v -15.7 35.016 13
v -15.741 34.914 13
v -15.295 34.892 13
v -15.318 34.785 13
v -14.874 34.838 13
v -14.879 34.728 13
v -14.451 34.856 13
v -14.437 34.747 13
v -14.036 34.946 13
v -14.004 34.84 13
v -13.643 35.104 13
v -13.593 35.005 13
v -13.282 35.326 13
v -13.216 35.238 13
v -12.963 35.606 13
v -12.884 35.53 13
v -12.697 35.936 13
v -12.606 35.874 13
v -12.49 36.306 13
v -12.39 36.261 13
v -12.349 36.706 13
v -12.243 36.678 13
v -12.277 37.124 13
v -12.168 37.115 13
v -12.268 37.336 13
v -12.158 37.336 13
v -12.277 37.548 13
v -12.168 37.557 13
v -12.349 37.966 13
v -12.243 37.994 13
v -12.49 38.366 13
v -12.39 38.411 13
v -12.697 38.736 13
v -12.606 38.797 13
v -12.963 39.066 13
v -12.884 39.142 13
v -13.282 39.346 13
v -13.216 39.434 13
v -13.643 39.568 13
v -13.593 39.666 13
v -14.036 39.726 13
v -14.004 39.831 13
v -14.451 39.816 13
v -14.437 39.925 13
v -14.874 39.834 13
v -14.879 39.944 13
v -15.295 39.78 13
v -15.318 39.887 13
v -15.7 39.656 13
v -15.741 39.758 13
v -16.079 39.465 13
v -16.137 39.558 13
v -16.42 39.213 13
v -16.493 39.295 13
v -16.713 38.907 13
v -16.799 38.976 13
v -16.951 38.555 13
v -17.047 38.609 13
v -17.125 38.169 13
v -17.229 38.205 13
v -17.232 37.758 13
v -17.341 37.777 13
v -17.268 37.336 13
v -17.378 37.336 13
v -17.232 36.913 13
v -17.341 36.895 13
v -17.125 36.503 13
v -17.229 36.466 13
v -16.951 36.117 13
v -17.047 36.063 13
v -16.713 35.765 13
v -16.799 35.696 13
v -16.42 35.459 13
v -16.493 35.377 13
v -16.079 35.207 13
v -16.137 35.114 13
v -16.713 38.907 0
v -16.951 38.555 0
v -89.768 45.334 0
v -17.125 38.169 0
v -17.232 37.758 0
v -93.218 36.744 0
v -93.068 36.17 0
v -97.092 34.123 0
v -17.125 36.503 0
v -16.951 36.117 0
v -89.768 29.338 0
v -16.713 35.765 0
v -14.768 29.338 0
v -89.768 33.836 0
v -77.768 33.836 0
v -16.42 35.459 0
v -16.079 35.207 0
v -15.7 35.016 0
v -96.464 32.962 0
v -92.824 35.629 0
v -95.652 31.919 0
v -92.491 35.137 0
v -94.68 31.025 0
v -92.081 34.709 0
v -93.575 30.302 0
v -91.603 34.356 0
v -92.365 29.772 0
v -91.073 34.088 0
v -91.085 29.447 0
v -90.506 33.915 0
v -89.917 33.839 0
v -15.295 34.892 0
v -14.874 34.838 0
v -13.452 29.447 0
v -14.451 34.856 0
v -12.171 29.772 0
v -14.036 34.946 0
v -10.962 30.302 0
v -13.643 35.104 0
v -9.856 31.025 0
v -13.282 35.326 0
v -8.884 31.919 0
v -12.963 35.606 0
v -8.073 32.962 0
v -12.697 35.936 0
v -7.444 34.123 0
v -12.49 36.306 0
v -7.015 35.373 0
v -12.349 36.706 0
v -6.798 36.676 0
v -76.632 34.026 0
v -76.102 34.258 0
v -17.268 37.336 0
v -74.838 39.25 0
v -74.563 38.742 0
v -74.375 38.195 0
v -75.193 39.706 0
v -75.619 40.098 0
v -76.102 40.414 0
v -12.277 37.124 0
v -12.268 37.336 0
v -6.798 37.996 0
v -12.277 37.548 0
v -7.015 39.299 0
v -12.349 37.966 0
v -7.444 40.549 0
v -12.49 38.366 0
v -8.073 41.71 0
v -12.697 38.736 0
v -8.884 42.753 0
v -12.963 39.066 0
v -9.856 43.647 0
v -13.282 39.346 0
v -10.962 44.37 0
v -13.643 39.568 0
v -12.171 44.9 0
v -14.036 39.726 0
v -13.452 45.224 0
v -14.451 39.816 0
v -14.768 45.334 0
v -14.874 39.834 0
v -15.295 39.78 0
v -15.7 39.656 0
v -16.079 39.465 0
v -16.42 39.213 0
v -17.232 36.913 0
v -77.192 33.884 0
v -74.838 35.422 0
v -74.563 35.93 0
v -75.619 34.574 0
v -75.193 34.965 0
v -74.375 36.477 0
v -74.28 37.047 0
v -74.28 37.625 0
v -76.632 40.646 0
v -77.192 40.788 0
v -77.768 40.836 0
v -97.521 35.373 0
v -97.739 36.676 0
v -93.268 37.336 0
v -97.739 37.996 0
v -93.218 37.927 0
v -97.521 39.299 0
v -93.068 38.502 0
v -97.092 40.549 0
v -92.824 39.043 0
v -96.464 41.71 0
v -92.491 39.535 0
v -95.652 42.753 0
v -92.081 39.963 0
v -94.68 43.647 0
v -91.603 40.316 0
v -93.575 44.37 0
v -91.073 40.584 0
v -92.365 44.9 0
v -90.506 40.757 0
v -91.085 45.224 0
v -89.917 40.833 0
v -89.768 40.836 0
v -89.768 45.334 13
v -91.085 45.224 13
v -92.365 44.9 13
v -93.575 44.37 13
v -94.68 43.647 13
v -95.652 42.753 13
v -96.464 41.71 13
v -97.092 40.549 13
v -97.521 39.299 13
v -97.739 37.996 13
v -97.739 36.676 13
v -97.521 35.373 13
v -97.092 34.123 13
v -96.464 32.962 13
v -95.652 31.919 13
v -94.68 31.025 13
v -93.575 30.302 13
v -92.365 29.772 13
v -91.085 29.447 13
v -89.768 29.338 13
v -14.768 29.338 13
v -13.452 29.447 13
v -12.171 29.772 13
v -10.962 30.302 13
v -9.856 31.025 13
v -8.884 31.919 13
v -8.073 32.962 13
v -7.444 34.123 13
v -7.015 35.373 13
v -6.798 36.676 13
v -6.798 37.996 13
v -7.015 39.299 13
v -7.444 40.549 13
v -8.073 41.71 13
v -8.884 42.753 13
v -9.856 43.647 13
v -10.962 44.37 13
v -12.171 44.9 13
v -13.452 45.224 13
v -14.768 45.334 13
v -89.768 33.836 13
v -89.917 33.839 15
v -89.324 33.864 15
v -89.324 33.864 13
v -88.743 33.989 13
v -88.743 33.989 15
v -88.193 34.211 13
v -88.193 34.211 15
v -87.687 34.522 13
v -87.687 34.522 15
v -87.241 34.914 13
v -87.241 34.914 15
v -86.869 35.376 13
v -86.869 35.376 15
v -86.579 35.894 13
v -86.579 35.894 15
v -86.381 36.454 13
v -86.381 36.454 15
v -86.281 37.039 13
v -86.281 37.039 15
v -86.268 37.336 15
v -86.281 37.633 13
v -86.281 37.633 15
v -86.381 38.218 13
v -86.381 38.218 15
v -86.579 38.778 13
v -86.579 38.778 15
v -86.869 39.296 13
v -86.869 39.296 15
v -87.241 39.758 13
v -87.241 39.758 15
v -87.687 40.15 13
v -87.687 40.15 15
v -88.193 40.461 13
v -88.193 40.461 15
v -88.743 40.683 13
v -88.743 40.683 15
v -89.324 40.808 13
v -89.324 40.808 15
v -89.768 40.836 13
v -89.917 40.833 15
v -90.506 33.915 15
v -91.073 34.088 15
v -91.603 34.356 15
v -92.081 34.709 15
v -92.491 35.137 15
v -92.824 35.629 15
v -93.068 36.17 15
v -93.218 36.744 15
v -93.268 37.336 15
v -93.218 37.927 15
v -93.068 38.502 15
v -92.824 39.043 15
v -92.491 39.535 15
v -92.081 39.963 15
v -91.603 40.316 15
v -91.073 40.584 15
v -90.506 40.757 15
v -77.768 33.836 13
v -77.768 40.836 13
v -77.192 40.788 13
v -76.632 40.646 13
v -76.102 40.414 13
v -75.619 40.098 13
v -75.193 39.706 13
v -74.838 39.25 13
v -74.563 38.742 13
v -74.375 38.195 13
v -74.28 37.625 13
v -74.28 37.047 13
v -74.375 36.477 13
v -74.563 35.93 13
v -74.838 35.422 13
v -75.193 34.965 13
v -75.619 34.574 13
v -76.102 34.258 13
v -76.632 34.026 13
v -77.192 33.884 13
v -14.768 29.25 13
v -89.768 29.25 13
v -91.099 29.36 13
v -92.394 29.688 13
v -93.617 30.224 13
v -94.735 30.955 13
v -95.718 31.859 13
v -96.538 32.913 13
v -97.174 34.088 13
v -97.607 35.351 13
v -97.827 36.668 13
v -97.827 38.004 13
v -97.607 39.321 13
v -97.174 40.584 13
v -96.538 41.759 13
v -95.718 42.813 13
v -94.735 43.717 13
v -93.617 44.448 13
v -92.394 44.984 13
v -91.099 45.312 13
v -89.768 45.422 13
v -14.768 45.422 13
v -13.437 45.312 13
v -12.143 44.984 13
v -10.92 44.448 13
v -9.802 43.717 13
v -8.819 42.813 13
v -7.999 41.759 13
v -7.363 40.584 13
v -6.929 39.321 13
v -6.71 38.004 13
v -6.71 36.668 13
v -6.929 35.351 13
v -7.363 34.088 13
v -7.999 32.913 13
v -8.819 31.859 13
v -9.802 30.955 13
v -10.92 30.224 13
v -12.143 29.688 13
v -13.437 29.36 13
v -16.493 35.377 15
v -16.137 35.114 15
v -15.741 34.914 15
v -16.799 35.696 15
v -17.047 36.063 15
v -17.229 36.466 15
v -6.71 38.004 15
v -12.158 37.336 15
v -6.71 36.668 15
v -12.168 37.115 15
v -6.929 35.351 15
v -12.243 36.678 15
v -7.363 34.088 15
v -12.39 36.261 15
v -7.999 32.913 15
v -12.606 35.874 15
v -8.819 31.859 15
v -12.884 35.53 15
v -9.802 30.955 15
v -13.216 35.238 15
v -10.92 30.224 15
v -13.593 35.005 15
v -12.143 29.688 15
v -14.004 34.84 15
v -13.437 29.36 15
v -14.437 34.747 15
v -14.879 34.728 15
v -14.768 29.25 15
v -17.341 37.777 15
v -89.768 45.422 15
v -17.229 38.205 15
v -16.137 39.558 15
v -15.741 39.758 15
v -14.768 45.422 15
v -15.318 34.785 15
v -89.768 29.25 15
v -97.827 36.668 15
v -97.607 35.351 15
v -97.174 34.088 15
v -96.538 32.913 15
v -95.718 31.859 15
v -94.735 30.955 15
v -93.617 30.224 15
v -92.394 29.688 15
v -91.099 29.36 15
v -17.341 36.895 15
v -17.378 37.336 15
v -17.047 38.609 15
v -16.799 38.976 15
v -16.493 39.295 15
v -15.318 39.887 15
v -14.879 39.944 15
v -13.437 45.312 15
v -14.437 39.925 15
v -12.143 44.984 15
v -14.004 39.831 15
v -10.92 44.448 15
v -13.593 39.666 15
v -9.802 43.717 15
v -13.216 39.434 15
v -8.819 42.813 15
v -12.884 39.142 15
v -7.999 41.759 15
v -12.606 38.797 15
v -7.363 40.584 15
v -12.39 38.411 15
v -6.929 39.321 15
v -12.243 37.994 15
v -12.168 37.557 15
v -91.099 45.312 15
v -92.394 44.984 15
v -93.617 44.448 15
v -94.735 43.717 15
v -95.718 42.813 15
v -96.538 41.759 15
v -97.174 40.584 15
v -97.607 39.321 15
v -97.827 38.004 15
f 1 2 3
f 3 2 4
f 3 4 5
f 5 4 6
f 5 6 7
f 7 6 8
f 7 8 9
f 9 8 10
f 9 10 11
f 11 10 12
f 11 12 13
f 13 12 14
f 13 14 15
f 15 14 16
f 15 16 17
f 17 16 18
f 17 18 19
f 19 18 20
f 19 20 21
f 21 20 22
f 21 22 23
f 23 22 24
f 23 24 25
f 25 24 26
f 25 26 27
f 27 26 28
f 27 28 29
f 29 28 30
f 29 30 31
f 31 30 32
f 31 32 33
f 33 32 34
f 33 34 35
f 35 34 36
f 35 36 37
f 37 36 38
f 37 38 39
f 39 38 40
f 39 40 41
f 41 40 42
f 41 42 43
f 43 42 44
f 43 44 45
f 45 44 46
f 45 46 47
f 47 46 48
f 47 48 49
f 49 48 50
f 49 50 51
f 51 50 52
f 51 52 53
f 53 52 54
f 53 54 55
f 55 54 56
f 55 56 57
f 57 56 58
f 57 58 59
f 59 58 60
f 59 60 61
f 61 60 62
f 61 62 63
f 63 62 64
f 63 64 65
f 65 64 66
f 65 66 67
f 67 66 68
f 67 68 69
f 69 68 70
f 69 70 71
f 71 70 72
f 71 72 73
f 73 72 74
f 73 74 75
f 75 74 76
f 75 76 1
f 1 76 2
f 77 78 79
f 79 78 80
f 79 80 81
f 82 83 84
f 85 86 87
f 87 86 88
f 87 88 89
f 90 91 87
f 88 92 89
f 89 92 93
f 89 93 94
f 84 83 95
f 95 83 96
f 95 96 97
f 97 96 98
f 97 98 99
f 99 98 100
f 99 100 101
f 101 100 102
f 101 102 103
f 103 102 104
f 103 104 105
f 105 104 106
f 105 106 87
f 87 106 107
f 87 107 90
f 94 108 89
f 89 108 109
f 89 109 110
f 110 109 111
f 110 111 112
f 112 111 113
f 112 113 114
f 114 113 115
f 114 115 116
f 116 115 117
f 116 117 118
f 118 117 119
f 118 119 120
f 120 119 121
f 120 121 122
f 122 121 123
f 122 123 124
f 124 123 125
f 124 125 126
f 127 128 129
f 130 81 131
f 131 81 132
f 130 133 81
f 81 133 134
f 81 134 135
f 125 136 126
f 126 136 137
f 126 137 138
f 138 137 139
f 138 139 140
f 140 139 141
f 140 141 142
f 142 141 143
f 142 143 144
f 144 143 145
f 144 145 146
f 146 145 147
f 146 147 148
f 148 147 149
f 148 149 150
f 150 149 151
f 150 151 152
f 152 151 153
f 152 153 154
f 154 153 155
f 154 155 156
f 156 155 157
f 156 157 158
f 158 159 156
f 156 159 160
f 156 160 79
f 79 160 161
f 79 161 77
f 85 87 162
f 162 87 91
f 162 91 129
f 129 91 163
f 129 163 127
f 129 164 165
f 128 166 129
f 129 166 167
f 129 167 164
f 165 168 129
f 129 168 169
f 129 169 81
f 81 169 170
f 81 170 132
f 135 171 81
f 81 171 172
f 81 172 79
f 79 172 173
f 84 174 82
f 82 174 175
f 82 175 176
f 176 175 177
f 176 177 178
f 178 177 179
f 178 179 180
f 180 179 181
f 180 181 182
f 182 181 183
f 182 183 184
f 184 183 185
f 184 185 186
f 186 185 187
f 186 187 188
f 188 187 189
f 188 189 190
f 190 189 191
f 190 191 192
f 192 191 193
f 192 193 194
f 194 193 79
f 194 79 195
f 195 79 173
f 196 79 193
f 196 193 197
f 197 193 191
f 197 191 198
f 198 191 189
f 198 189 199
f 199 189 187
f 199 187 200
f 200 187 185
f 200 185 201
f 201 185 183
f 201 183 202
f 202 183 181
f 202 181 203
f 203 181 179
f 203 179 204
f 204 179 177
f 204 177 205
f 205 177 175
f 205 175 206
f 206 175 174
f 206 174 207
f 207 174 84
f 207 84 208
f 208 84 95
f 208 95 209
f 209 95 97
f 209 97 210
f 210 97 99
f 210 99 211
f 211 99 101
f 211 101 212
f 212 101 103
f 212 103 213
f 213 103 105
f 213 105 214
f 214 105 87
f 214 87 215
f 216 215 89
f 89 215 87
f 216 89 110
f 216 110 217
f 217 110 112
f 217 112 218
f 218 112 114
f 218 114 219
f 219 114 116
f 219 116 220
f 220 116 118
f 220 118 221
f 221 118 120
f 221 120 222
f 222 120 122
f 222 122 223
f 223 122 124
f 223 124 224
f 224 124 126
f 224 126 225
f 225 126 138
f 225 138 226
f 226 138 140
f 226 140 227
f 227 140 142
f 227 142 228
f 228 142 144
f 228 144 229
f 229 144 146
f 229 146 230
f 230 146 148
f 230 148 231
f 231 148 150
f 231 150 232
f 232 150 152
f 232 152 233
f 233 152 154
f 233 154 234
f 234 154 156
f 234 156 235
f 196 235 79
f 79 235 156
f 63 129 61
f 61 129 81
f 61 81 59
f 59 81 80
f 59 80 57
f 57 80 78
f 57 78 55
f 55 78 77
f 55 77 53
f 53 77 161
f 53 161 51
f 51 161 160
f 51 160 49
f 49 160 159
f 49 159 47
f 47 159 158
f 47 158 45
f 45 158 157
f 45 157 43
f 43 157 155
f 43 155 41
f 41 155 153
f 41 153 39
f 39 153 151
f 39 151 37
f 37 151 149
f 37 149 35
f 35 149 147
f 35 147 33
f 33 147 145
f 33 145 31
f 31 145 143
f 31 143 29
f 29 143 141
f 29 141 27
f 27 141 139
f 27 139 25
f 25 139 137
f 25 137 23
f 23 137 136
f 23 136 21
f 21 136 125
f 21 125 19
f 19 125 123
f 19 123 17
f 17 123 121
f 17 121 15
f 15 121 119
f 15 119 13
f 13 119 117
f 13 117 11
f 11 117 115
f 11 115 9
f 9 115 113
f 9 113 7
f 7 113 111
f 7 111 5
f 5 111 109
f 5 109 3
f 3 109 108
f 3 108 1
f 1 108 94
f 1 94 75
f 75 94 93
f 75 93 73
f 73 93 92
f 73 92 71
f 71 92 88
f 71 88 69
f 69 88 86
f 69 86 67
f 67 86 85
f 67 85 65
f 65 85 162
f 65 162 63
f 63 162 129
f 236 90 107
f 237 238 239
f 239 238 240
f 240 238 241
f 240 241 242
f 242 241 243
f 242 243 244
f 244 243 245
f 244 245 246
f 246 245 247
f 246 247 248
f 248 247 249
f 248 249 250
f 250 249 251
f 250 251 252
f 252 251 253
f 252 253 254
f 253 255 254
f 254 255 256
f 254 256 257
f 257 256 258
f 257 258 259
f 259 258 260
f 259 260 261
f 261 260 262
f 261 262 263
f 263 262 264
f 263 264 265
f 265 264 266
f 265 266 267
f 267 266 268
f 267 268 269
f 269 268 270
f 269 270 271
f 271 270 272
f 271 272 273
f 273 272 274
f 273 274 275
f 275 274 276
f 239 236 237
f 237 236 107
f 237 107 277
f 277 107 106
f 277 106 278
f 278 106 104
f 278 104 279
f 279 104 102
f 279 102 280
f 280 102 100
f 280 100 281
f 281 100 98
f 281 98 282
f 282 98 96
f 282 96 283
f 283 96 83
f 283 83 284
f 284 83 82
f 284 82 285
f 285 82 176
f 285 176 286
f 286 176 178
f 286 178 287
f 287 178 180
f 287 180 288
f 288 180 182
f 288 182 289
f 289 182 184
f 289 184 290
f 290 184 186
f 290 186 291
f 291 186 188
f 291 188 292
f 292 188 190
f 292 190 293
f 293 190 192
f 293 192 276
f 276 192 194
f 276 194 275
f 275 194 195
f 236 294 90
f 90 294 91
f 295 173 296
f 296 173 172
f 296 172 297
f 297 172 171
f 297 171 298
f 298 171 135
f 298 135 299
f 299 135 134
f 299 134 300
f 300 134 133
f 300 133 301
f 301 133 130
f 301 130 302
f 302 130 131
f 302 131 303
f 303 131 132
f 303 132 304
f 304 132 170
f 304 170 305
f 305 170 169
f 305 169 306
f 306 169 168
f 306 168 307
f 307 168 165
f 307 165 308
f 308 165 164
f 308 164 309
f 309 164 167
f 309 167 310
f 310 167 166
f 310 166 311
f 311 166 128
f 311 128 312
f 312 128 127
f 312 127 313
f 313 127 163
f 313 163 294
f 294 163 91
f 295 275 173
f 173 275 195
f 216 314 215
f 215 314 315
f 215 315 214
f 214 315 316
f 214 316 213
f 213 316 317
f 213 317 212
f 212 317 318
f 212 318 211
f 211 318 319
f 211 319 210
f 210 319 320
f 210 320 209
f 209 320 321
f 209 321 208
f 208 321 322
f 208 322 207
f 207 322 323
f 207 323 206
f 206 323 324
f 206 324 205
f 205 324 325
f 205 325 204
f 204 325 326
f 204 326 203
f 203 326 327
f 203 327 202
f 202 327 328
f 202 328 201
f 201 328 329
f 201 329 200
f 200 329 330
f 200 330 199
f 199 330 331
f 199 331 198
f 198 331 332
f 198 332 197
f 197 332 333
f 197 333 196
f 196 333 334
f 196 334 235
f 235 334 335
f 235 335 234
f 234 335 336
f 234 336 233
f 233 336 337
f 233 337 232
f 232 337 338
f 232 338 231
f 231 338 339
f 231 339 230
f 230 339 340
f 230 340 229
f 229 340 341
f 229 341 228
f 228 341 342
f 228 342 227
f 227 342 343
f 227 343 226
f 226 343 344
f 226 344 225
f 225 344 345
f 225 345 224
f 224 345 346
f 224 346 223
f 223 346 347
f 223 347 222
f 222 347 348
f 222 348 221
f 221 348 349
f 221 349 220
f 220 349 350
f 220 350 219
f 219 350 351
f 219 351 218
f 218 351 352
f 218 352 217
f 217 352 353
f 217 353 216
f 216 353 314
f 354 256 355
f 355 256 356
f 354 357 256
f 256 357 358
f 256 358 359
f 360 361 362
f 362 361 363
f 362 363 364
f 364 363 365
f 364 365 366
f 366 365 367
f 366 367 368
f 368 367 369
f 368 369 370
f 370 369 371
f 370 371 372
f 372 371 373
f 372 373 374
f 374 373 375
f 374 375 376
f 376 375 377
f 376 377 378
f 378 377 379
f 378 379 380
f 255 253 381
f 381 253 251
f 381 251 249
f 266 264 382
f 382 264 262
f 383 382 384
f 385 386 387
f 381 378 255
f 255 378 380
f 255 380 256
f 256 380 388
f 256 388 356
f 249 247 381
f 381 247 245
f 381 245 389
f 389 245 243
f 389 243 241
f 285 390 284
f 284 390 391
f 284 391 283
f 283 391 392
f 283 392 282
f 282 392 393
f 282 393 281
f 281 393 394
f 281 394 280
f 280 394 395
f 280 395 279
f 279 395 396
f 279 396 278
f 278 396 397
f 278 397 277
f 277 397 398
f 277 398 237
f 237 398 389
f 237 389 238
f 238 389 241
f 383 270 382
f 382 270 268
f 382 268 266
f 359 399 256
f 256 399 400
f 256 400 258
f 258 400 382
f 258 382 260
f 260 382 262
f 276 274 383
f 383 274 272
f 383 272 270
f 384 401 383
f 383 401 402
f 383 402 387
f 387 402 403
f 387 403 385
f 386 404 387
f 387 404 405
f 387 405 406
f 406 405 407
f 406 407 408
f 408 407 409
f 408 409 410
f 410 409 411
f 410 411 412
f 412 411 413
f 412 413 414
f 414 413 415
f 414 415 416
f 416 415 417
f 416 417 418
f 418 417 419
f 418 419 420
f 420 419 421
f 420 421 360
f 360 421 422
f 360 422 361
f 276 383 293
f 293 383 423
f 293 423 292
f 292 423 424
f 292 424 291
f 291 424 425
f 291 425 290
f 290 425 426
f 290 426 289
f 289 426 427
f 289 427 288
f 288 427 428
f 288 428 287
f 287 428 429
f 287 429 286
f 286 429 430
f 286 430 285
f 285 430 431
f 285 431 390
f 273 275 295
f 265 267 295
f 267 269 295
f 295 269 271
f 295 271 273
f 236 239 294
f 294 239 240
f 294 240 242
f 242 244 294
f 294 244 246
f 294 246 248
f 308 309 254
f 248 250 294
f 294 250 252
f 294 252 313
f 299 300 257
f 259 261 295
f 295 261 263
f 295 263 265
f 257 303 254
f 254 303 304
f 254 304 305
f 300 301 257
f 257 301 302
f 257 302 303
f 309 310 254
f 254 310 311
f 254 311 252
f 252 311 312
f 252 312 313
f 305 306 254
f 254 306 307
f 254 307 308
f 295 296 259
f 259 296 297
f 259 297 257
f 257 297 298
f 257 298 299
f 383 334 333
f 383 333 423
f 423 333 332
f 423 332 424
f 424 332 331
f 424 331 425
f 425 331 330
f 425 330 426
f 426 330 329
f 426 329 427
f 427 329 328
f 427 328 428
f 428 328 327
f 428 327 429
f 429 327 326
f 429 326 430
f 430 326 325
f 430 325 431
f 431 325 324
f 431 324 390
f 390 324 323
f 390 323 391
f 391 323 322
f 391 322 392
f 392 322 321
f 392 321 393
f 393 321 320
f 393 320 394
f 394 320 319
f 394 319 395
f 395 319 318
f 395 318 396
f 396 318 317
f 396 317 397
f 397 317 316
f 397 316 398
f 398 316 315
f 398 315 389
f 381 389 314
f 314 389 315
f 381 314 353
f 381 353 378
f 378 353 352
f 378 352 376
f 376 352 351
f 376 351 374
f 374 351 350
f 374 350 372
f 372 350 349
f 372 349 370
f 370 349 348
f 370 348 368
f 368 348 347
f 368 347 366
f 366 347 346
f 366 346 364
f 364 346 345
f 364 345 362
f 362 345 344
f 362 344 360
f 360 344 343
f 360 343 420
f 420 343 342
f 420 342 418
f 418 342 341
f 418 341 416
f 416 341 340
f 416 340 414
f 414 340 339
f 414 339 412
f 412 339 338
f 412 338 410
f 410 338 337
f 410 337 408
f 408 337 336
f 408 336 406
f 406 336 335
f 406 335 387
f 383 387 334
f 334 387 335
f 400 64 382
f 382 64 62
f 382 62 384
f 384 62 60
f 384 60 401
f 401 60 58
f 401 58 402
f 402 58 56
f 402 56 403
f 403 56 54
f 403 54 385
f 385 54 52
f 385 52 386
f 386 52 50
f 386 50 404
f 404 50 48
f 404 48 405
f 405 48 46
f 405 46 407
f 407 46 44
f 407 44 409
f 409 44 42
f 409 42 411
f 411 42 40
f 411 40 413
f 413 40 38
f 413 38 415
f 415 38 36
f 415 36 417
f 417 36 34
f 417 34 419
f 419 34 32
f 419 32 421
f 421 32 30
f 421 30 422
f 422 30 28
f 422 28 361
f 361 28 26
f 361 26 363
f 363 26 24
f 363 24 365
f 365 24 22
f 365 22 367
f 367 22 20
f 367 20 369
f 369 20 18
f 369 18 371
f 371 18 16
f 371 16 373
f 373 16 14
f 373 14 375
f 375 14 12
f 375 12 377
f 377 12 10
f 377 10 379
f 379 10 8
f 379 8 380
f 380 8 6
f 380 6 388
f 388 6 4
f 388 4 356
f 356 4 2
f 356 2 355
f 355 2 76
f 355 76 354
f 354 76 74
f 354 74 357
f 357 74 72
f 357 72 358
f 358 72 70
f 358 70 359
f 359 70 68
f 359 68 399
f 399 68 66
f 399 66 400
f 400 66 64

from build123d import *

# Parameters (mm, degrees)
SKETCH1_R           = 2.5
BOSS_EXTRUDE1_DEPTH = 13
SKETCH2_R           = 2.609917525
SKETCH2_R_2         = 3.5
BOSS_EXTRUDE2_DEPTH = 2


with BuildPart() as part:
    # Sketch1 → Boss-Extrude1 (new body)
    with BuildSketch(Plane.XY):
        with BuildLine():
            Line((-89.768287337, 45.333507938), (-14.768287337, 45.333507938))
            ThreePointArc((-14.768287337, 45.333507938), (-6.770739373, 37.335959975), (-14.768287337, 29.338412011))
            Line((-14.768287337, 29.338412011), (-89.768287337, 29.338412011))
            ThreePointArc((-89.768287337, 29.338412011), (-97.765835301, 37.335959975), (-89.768287337, 45.333507938))
        make_face()
        with Locations((-14.768287337, 37.335959975)):
            Circle(SKETCH1_R, mode=Mode.SUBTRACT)
        with BuildLine():
            Line((-89.768287337, 40.835959975), (-77.768287337, 40.835959975))
            ThreePointArc((-77.768287337, 40.835959975), (-74.268287337, 37.335959975), (-77.768287337, 33.835959975))
            Line((-77.768287337, 33.835959975), (-89.768287337, 33.835959975))
            ThreePointArc((-89.768287337, 33.835959975), (-93.268287337, 37.335959975), (-89.768287337, 40.835959975))
        make_face(mode=Mode.SUBTRACT)
    extrude(amount=BOSS_EXTRUDE1_DEPTH)

    # Sketch2 → Boss-Extrude2 (add)
    with BuildSketch(Plane.XY.offset(13)):
        with BuildLine():
            Line((-89.768287337, 45.422284511), (-14.768287337, 45.422284511))
            ThreePointArc((-14.768287337, 45.422284511), (-6.681962801, 37.335959975), (-14.768287337, 29.249635439))
            Line((-14.768287337, 29.249635439), (-89.768287337, 29.249635439))
            ThreePointArc((-89.768287337, 29.249635439), (-97.854611873, 37.335959975), (-89.768287337, 45.422284511))
        make_face()
        with Locations((-14.768287337, 37.335959975)):
            Circle(SKETCH2_R, mode=Mode.SUBTRACT)
        with Locations((-89.768287337, 37.335959975)):
            Circle(SKETCH2_R_2, mode=Mode.SUBTRACT)
    extrude(amount=BOSS_EXTRUDE2_DEPTH)


solid = part.part
